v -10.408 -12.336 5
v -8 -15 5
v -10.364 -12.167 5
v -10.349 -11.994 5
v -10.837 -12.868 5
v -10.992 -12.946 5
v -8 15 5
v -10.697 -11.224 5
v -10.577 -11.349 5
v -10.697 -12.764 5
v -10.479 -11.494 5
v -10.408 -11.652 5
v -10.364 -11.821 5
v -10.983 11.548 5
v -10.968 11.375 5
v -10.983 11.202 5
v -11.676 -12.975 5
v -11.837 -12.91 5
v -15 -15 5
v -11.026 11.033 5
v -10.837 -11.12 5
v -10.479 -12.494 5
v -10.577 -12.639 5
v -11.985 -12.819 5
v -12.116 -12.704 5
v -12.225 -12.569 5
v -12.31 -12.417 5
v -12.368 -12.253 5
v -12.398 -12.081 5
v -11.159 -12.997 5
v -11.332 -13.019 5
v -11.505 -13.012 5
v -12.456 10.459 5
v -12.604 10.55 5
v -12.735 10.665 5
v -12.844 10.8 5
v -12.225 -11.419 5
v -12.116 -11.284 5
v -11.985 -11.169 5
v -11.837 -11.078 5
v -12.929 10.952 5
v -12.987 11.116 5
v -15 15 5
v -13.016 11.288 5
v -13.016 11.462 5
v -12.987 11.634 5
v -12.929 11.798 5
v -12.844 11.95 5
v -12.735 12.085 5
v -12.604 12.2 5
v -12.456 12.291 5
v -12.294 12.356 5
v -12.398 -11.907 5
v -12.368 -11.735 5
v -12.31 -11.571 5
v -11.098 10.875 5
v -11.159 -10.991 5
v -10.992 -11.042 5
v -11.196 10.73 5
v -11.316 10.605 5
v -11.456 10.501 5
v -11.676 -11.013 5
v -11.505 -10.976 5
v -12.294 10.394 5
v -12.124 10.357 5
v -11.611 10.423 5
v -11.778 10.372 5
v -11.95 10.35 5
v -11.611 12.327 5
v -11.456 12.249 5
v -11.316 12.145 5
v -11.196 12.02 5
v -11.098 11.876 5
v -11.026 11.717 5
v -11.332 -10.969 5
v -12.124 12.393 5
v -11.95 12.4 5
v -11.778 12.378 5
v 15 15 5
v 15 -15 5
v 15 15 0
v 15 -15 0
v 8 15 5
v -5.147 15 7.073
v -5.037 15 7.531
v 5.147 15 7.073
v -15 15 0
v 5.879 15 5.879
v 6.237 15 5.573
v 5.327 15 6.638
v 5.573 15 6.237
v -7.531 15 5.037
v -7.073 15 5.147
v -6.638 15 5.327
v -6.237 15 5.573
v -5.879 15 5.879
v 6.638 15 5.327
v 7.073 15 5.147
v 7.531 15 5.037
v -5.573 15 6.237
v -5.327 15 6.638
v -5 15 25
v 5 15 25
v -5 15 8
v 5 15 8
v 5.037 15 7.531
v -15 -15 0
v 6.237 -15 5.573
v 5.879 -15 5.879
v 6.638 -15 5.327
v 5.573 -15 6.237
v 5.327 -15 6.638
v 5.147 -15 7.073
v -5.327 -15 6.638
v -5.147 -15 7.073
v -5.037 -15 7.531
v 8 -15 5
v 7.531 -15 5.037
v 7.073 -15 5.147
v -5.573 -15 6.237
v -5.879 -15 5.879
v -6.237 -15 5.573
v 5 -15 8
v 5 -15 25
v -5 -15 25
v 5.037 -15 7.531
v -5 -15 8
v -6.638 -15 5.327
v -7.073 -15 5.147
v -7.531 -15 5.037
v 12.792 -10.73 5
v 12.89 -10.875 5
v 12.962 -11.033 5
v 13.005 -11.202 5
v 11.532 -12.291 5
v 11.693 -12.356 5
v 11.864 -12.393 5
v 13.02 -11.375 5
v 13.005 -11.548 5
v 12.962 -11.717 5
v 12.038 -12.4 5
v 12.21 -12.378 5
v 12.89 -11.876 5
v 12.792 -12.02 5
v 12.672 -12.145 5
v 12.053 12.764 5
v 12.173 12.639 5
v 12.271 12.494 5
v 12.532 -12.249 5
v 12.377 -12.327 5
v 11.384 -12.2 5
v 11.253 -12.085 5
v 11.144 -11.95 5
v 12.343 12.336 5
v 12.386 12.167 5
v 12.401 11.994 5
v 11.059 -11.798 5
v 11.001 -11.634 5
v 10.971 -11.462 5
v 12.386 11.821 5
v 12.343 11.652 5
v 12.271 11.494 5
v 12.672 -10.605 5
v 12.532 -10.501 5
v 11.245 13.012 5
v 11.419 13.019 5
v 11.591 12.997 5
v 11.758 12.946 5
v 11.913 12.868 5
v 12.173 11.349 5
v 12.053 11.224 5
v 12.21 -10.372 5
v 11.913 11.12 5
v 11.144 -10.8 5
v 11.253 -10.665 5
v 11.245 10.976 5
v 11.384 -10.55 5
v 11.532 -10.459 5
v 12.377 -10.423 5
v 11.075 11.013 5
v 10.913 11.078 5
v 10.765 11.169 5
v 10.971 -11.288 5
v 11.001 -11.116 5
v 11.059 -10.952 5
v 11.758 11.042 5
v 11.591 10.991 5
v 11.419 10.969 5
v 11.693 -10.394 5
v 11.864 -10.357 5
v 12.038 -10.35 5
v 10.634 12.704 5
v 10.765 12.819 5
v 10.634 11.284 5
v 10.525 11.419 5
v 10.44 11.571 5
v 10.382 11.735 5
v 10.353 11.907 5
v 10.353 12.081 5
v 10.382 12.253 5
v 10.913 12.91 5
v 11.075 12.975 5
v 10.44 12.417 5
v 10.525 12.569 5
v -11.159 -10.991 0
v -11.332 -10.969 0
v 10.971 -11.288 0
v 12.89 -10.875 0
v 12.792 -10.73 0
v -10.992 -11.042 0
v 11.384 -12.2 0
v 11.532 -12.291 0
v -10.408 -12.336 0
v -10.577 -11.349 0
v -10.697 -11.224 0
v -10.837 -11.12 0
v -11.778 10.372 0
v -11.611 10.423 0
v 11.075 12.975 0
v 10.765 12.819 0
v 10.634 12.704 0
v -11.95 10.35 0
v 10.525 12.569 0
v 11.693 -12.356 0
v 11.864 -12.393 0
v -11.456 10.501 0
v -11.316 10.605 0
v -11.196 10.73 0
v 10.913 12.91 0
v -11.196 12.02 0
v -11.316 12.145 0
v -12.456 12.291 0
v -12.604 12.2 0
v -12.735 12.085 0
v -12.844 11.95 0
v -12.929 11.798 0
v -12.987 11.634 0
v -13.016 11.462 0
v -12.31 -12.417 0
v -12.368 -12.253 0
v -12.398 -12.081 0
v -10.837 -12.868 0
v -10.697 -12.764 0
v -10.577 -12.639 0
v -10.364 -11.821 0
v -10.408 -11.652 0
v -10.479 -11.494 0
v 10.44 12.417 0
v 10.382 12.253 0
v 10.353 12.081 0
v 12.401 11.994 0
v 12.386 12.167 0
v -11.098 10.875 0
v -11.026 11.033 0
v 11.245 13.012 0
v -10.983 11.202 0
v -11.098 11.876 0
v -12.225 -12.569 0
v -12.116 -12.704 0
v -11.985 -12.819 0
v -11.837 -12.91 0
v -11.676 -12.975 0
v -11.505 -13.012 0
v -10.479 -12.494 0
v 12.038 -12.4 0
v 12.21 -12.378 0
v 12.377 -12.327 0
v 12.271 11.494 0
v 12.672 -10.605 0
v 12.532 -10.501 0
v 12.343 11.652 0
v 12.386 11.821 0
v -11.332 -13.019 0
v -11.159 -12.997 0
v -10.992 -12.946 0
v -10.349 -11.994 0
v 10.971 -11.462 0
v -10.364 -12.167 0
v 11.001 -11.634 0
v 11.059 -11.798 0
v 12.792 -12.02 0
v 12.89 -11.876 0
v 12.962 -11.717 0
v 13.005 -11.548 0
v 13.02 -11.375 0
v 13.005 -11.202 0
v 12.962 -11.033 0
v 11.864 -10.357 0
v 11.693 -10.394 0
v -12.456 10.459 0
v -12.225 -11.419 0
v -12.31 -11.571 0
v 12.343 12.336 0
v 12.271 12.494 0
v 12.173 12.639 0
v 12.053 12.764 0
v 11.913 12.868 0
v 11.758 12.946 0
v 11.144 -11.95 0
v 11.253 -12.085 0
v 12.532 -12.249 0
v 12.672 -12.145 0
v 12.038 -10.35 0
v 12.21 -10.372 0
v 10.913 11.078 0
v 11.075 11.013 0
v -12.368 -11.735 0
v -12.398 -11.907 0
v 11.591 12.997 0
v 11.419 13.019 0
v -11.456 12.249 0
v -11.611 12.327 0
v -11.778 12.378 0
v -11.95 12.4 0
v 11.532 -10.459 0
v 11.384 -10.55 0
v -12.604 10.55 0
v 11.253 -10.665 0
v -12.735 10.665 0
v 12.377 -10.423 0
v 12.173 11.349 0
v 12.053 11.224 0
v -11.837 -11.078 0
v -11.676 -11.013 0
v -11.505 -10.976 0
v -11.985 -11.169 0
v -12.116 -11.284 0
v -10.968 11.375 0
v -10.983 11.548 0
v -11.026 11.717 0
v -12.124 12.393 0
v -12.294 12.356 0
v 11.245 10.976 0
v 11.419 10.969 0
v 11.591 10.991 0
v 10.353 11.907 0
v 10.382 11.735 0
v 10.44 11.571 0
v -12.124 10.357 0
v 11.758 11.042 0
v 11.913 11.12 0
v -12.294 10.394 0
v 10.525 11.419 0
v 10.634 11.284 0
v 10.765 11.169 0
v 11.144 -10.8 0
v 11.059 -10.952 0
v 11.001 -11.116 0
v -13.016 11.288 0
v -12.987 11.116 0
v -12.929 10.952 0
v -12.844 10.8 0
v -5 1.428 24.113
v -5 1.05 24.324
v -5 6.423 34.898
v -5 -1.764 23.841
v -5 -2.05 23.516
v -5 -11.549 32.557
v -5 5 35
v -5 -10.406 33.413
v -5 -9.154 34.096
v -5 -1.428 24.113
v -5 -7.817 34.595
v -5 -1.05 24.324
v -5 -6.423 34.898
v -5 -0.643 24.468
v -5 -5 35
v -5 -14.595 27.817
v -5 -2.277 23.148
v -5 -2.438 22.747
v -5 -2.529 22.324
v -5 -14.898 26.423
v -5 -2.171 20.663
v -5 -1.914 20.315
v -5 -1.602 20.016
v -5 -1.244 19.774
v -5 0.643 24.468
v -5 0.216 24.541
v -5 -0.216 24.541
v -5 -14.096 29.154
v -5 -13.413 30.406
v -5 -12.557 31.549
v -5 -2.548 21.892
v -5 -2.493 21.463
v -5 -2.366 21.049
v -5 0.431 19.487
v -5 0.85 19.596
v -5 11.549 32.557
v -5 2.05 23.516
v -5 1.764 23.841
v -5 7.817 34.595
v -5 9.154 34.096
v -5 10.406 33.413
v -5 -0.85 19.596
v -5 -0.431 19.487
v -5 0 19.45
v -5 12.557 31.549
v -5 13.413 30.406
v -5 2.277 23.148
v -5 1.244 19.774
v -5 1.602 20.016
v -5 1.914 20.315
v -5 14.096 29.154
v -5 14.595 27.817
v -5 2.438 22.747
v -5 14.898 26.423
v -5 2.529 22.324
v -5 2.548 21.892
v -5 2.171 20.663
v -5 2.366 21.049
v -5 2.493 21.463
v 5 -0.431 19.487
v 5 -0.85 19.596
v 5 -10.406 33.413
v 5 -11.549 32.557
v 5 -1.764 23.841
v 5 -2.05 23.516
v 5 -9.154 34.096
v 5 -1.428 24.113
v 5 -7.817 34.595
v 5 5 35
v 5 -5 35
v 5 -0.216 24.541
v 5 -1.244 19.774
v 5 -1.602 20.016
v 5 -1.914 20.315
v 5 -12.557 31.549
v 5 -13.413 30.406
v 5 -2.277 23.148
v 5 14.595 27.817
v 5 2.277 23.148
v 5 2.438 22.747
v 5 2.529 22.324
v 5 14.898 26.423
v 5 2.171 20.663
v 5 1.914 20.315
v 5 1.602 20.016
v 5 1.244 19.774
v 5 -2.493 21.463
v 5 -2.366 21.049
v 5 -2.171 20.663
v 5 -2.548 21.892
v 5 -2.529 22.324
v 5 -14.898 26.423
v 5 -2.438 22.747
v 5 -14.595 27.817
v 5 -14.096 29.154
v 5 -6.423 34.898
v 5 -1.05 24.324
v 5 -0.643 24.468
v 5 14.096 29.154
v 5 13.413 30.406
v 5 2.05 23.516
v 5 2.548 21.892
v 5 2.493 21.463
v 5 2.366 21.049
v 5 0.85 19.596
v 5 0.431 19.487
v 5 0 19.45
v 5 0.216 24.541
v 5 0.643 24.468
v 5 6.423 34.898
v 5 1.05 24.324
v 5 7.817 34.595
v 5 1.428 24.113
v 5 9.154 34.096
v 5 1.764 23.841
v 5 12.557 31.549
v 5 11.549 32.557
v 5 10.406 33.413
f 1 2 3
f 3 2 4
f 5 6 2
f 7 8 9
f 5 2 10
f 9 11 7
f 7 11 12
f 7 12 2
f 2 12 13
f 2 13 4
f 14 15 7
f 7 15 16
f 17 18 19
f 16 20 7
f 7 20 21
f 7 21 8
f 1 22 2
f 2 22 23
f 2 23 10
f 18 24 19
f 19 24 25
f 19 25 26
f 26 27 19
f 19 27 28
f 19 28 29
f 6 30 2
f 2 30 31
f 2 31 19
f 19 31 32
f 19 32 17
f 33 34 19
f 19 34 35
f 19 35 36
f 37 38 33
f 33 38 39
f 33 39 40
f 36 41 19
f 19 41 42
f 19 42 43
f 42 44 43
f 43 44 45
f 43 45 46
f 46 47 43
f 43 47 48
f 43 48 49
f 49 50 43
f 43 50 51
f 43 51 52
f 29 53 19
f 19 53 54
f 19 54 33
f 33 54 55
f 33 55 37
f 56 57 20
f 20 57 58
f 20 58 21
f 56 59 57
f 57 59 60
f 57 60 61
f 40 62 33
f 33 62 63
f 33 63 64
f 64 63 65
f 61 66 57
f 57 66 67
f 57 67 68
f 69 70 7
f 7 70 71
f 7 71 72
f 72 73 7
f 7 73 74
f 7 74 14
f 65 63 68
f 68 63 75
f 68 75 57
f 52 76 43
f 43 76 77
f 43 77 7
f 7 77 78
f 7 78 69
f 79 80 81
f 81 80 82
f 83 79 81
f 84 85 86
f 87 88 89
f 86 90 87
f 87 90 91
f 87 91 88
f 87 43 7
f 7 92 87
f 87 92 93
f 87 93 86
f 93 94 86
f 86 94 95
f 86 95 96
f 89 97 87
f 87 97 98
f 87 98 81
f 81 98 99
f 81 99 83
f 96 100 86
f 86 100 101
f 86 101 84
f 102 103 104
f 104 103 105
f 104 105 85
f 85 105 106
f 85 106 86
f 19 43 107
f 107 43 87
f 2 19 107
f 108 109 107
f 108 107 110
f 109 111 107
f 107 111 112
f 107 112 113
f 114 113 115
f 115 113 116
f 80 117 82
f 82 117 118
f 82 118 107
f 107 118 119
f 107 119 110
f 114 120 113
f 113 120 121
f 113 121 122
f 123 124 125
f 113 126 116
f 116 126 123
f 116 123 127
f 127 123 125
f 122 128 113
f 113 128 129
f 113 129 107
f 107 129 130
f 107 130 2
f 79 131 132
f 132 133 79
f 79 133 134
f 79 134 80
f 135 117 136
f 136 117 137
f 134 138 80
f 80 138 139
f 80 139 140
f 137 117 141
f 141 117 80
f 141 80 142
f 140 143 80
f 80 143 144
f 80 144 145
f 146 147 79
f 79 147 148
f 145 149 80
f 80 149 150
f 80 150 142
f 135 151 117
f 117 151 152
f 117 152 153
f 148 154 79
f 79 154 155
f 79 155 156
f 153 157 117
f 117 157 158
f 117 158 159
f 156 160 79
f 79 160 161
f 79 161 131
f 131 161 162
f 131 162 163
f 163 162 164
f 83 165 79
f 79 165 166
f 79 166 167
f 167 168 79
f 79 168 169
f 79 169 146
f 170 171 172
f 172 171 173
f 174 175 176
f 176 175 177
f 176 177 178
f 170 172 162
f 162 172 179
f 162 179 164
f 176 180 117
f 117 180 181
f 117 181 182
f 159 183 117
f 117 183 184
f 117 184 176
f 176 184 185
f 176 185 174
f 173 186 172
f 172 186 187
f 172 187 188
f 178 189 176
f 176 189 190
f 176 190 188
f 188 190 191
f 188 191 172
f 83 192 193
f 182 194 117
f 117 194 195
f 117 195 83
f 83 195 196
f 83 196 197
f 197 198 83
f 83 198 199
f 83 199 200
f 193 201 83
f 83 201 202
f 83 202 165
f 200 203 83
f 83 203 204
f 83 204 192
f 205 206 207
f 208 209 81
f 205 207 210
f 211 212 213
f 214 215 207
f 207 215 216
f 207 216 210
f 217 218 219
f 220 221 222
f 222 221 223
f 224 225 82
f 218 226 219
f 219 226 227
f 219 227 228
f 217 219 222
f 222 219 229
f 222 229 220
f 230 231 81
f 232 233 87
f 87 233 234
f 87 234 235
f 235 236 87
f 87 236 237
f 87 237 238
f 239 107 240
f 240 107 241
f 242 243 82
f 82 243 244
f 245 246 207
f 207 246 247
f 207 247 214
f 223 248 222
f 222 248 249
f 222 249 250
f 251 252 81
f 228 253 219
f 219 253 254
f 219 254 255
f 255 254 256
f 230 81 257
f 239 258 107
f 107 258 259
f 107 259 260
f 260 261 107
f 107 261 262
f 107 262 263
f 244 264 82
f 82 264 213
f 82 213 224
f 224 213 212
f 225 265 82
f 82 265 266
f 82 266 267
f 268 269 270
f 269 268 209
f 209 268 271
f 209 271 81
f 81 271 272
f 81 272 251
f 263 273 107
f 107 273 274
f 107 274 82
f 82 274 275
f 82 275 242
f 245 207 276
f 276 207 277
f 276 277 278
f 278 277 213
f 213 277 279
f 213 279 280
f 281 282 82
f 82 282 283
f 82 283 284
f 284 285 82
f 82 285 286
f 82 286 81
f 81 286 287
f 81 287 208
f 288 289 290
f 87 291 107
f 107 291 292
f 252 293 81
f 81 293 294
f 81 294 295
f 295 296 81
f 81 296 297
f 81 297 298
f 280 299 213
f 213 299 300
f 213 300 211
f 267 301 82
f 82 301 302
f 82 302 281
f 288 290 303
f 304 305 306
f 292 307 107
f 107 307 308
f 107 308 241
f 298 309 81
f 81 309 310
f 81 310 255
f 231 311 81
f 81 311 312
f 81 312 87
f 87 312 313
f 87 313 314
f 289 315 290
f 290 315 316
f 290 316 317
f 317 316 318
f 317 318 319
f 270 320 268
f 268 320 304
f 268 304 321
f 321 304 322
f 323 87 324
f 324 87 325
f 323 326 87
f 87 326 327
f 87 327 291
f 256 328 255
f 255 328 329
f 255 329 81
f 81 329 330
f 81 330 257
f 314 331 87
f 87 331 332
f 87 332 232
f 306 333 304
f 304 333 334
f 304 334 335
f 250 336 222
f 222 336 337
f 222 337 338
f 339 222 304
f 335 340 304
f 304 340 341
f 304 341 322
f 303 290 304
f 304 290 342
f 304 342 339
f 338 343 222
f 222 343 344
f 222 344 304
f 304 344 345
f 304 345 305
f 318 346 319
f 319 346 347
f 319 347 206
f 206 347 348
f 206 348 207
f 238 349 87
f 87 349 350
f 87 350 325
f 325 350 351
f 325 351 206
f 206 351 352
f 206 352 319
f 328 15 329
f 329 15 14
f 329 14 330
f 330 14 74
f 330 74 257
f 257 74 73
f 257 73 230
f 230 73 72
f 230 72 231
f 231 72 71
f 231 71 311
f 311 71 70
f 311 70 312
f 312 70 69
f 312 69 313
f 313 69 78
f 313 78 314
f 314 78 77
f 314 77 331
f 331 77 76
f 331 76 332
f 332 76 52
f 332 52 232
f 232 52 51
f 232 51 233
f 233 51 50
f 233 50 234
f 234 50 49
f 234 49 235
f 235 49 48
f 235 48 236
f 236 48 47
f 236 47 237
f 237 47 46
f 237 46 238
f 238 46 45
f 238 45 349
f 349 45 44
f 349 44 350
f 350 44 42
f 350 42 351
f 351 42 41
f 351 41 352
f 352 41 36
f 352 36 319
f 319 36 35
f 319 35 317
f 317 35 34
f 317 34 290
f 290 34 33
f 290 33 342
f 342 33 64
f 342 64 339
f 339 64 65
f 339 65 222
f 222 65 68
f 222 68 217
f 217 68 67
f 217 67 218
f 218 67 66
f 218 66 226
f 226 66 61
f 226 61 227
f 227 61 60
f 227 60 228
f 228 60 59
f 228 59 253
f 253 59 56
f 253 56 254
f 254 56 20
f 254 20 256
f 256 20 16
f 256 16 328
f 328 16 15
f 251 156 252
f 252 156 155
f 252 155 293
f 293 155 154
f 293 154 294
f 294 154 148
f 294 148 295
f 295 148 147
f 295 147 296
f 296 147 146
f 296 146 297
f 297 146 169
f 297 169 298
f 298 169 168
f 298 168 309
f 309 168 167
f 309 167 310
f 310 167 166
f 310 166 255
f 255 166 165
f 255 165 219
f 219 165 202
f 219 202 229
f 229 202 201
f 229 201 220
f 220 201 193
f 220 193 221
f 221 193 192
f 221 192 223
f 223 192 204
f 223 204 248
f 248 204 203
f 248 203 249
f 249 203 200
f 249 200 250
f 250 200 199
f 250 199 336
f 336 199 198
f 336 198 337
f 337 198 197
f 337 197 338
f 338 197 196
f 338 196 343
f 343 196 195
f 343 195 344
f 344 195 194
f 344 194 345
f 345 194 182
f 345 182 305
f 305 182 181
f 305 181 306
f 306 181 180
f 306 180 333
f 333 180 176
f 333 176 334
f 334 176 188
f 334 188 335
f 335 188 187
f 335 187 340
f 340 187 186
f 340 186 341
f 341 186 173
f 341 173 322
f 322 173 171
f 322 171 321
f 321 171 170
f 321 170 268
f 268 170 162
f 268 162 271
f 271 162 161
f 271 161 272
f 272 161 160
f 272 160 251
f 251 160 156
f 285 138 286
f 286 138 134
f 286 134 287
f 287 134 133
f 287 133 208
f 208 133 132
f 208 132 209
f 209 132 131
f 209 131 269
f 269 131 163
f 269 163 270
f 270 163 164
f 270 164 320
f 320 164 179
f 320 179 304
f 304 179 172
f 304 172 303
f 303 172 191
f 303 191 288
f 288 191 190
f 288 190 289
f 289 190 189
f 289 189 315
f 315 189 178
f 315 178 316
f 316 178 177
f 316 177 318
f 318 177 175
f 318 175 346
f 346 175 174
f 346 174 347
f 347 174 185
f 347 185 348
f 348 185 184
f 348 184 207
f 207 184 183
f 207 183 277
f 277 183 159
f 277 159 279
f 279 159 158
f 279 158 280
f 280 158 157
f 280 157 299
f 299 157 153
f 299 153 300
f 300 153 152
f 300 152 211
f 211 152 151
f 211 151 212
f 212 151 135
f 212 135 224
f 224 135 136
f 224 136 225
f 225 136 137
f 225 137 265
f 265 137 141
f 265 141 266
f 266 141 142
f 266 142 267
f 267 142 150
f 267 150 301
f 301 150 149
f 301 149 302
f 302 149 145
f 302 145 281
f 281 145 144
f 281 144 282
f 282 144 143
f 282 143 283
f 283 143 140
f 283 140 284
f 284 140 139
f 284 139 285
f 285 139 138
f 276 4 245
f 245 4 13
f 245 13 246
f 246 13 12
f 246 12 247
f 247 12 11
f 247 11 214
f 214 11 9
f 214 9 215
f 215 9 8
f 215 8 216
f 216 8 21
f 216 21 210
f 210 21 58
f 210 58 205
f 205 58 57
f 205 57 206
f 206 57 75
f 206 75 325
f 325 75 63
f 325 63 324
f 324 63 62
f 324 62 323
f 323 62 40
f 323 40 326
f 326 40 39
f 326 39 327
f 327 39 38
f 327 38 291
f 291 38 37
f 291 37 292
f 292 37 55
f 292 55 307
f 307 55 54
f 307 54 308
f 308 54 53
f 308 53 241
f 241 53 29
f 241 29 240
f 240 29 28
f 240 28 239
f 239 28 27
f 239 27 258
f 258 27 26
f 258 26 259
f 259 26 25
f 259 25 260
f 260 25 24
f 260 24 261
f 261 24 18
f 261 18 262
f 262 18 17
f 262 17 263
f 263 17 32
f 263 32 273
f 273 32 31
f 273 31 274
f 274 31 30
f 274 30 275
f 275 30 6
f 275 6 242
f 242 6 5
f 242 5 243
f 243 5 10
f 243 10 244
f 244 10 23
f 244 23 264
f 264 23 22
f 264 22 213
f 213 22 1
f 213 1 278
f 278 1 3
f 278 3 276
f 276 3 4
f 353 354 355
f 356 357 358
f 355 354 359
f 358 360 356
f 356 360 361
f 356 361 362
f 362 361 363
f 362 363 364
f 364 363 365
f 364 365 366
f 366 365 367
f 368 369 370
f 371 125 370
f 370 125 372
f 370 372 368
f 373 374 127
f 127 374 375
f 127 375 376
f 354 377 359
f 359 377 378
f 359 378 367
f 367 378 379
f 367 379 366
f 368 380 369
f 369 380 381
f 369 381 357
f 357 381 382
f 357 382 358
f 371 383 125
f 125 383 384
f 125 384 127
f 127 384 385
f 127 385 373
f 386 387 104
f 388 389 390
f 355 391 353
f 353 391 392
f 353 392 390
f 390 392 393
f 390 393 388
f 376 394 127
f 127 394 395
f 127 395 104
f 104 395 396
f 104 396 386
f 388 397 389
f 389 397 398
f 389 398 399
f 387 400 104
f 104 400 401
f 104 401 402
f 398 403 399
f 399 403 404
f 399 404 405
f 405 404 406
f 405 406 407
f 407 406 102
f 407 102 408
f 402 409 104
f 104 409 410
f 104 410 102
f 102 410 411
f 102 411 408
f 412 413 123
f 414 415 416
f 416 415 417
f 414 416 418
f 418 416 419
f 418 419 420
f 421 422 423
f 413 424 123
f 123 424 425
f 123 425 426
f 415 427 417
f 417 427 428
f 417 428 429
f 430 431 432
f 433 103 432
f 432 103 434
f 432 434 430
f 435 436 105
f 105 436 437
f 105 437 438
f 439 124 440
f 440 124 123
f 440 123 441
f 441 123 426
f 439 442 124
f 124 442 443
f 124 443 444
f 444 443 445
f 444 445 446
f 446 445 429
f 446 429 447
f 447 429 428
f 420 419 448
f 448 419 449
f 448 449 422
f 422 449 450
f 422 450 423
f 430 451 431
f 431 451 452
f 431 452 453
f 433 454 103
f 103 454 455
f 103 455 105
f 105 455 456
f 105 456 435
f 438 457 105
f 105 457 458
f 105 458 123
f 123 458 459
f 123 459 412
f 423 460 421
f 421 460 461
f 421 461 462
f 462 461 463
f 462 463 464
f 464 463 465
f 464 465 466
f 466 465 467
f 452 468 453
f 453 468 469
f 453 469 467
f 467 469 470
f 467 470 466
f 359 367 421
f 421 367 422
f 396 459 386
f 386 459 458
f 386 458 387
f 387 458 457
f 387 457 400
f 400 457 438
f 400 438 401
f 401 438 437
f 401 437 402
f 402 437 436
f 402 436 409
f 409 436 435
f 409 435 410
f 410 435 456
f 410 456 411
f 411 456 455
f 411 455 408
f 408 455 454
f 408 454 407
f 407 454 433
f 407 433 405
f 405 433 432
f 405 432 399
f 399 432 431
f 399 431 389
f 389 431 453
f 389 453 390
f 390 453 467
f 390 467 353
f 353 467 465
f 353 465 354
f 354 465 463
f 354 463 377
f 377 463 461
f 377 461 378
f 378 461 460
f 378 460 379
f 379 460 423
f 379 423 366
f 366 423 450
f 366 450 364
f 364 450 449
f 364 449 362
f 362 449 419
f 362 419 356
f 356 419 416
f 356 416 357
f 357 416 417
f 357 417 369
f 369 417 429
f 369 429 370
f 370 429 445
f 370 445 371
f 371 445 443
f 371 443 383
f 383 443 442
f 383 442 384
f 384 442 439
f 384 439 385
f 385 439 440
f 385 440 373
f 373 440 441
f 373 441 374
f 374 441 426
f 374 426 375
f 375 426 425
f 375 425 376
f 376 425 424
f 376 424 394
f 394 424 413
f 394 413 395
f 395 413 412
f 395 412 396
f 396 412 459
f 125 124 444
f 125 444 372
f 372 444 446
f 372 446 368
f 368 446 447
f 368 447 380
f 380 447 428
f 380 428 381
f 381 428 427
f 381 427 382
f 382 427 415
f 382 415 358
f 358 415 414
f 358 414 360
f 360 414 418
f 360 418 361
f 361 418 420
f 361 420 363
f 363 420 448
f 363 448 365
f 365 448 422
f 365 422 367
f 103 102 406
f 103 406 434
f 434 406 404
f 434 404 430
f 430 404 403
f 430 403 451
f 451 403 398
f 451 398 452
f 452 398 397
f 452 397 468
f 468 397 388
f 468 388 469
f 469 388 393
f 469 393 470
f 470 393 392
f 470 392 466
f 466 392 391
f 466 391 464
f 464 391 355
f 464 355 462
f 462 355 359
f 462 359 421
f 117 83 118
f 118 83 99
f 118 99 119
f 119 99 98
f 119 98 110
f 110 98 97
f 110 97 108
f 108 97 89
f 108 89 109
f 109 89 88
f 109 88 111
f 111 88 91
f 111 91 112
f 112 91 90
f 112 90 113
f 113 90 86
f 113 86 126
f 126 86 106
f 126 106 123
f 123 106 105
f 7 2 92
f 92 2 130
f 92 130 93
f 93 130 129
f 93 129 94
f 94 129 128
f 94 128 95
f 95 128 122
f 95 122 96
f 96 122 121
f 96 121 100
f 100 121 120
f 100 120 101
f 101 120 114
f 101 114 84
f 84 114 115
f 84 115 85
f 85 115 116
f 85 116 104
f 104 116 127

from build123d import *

# Parameters (mm, degrees)
SKETCH1_W           = 30
SKETCH1_H           = 30
BOSS_EXTRUDE2_DEPTH = 5
SKETCH3_R           = 1.02617269
CUT_EXTRUDE1_DEPTH  = 5
SKETCH4_W           = 10
SKETCH4_H           = 30
BOSS_EXTRUDE3_DEPTH = 30
SKETCH5_R           = 2.55
CUT_EXTRUDE2_DEPTH  = 30
FILLET1_R           = 10
FILLET2_R           = 10
FILLET4_R           = 3
FILLET5_R           = 3


with BuildPart() as part:
    # Sketch1 → Boss-Extrude2 (new body)
    with BuildSketch(Plane.XY):
        Rectangle(SKETCH1_W, SKETCH1_H)
    extrude(amount=BOSS_EXTRUDE2_DEPTH)

    # Sketch3 → Cut-Extrude1 (cut)
    with BuildSketch(Plane.XY.offset(5)):
        with Locations((-11.9939671, 11.375061325)):
            Circle(SKETCH3_R)
        with Locations((11.375061325, 11.9939671)):
            Circle(SKETCH3_R)
        with Locations((11.9939671, -11.375061325)):
            Circle(SKETCH3_R)
        with Locations((-11.375061325, -11.9939671)):
            Circle(SKETCH3_R)
    extrude(amount=-CUT_EXTRUDE1_DEPTH, mode=Mode.SUBTRACT)

    # Sketch4 → Boss-Extrude3 (add)
    with BuildSketch(Plane.XY.offset(5)):
        Rectangle(SKETCH4_W, SKETCH4_H)
    extrude(amount=BOSS_EXTRUDE3_DEPTH)

    # Sketch5 → Cut-Extrude2 (cut)
    with BuildSketch(Plane(origin=(5, 0, 0), x_dir=(0, 0, -1), z_dir=(1, 0, 0))):
        with Locations((-22, 0)):
            Circle(SKETCH5_R)
    extrude(amount=-CUT_EXTRUDE2_DEPTH, mode=Mode.SUBTRACT)

    # Fillet1
    fillet1_edges = [part.edges().sort_by_distance(p)[0] for p in [
        (0, -15, 35),
    ]]
    fillet(fillet1_edges, radius=FILLET1_R)

    # Fillet2
    fillet2_edges = [part.edges().sort_by_distance(p)[0] for p in [
        (0, 15, 35),
    ]]
    fillet(fillet2_edges, radius=FILLET2_R)

    # Fillet4
    fillet4_edges = [part.edges().sort_by_distance(p)[0] for p in [
        (5, 0, 5),
    ]]
    fillet(fillet4_edges, radius=FILLET4_R)

    # Fillet5
    fillet5_edges = [part.edges().sort_by_distance(p)[0] for p in [
        (-5, 0, 5),
    ]]
    fillet(fillet5_edges, radius=FILLET5_R)


solid = part.part
